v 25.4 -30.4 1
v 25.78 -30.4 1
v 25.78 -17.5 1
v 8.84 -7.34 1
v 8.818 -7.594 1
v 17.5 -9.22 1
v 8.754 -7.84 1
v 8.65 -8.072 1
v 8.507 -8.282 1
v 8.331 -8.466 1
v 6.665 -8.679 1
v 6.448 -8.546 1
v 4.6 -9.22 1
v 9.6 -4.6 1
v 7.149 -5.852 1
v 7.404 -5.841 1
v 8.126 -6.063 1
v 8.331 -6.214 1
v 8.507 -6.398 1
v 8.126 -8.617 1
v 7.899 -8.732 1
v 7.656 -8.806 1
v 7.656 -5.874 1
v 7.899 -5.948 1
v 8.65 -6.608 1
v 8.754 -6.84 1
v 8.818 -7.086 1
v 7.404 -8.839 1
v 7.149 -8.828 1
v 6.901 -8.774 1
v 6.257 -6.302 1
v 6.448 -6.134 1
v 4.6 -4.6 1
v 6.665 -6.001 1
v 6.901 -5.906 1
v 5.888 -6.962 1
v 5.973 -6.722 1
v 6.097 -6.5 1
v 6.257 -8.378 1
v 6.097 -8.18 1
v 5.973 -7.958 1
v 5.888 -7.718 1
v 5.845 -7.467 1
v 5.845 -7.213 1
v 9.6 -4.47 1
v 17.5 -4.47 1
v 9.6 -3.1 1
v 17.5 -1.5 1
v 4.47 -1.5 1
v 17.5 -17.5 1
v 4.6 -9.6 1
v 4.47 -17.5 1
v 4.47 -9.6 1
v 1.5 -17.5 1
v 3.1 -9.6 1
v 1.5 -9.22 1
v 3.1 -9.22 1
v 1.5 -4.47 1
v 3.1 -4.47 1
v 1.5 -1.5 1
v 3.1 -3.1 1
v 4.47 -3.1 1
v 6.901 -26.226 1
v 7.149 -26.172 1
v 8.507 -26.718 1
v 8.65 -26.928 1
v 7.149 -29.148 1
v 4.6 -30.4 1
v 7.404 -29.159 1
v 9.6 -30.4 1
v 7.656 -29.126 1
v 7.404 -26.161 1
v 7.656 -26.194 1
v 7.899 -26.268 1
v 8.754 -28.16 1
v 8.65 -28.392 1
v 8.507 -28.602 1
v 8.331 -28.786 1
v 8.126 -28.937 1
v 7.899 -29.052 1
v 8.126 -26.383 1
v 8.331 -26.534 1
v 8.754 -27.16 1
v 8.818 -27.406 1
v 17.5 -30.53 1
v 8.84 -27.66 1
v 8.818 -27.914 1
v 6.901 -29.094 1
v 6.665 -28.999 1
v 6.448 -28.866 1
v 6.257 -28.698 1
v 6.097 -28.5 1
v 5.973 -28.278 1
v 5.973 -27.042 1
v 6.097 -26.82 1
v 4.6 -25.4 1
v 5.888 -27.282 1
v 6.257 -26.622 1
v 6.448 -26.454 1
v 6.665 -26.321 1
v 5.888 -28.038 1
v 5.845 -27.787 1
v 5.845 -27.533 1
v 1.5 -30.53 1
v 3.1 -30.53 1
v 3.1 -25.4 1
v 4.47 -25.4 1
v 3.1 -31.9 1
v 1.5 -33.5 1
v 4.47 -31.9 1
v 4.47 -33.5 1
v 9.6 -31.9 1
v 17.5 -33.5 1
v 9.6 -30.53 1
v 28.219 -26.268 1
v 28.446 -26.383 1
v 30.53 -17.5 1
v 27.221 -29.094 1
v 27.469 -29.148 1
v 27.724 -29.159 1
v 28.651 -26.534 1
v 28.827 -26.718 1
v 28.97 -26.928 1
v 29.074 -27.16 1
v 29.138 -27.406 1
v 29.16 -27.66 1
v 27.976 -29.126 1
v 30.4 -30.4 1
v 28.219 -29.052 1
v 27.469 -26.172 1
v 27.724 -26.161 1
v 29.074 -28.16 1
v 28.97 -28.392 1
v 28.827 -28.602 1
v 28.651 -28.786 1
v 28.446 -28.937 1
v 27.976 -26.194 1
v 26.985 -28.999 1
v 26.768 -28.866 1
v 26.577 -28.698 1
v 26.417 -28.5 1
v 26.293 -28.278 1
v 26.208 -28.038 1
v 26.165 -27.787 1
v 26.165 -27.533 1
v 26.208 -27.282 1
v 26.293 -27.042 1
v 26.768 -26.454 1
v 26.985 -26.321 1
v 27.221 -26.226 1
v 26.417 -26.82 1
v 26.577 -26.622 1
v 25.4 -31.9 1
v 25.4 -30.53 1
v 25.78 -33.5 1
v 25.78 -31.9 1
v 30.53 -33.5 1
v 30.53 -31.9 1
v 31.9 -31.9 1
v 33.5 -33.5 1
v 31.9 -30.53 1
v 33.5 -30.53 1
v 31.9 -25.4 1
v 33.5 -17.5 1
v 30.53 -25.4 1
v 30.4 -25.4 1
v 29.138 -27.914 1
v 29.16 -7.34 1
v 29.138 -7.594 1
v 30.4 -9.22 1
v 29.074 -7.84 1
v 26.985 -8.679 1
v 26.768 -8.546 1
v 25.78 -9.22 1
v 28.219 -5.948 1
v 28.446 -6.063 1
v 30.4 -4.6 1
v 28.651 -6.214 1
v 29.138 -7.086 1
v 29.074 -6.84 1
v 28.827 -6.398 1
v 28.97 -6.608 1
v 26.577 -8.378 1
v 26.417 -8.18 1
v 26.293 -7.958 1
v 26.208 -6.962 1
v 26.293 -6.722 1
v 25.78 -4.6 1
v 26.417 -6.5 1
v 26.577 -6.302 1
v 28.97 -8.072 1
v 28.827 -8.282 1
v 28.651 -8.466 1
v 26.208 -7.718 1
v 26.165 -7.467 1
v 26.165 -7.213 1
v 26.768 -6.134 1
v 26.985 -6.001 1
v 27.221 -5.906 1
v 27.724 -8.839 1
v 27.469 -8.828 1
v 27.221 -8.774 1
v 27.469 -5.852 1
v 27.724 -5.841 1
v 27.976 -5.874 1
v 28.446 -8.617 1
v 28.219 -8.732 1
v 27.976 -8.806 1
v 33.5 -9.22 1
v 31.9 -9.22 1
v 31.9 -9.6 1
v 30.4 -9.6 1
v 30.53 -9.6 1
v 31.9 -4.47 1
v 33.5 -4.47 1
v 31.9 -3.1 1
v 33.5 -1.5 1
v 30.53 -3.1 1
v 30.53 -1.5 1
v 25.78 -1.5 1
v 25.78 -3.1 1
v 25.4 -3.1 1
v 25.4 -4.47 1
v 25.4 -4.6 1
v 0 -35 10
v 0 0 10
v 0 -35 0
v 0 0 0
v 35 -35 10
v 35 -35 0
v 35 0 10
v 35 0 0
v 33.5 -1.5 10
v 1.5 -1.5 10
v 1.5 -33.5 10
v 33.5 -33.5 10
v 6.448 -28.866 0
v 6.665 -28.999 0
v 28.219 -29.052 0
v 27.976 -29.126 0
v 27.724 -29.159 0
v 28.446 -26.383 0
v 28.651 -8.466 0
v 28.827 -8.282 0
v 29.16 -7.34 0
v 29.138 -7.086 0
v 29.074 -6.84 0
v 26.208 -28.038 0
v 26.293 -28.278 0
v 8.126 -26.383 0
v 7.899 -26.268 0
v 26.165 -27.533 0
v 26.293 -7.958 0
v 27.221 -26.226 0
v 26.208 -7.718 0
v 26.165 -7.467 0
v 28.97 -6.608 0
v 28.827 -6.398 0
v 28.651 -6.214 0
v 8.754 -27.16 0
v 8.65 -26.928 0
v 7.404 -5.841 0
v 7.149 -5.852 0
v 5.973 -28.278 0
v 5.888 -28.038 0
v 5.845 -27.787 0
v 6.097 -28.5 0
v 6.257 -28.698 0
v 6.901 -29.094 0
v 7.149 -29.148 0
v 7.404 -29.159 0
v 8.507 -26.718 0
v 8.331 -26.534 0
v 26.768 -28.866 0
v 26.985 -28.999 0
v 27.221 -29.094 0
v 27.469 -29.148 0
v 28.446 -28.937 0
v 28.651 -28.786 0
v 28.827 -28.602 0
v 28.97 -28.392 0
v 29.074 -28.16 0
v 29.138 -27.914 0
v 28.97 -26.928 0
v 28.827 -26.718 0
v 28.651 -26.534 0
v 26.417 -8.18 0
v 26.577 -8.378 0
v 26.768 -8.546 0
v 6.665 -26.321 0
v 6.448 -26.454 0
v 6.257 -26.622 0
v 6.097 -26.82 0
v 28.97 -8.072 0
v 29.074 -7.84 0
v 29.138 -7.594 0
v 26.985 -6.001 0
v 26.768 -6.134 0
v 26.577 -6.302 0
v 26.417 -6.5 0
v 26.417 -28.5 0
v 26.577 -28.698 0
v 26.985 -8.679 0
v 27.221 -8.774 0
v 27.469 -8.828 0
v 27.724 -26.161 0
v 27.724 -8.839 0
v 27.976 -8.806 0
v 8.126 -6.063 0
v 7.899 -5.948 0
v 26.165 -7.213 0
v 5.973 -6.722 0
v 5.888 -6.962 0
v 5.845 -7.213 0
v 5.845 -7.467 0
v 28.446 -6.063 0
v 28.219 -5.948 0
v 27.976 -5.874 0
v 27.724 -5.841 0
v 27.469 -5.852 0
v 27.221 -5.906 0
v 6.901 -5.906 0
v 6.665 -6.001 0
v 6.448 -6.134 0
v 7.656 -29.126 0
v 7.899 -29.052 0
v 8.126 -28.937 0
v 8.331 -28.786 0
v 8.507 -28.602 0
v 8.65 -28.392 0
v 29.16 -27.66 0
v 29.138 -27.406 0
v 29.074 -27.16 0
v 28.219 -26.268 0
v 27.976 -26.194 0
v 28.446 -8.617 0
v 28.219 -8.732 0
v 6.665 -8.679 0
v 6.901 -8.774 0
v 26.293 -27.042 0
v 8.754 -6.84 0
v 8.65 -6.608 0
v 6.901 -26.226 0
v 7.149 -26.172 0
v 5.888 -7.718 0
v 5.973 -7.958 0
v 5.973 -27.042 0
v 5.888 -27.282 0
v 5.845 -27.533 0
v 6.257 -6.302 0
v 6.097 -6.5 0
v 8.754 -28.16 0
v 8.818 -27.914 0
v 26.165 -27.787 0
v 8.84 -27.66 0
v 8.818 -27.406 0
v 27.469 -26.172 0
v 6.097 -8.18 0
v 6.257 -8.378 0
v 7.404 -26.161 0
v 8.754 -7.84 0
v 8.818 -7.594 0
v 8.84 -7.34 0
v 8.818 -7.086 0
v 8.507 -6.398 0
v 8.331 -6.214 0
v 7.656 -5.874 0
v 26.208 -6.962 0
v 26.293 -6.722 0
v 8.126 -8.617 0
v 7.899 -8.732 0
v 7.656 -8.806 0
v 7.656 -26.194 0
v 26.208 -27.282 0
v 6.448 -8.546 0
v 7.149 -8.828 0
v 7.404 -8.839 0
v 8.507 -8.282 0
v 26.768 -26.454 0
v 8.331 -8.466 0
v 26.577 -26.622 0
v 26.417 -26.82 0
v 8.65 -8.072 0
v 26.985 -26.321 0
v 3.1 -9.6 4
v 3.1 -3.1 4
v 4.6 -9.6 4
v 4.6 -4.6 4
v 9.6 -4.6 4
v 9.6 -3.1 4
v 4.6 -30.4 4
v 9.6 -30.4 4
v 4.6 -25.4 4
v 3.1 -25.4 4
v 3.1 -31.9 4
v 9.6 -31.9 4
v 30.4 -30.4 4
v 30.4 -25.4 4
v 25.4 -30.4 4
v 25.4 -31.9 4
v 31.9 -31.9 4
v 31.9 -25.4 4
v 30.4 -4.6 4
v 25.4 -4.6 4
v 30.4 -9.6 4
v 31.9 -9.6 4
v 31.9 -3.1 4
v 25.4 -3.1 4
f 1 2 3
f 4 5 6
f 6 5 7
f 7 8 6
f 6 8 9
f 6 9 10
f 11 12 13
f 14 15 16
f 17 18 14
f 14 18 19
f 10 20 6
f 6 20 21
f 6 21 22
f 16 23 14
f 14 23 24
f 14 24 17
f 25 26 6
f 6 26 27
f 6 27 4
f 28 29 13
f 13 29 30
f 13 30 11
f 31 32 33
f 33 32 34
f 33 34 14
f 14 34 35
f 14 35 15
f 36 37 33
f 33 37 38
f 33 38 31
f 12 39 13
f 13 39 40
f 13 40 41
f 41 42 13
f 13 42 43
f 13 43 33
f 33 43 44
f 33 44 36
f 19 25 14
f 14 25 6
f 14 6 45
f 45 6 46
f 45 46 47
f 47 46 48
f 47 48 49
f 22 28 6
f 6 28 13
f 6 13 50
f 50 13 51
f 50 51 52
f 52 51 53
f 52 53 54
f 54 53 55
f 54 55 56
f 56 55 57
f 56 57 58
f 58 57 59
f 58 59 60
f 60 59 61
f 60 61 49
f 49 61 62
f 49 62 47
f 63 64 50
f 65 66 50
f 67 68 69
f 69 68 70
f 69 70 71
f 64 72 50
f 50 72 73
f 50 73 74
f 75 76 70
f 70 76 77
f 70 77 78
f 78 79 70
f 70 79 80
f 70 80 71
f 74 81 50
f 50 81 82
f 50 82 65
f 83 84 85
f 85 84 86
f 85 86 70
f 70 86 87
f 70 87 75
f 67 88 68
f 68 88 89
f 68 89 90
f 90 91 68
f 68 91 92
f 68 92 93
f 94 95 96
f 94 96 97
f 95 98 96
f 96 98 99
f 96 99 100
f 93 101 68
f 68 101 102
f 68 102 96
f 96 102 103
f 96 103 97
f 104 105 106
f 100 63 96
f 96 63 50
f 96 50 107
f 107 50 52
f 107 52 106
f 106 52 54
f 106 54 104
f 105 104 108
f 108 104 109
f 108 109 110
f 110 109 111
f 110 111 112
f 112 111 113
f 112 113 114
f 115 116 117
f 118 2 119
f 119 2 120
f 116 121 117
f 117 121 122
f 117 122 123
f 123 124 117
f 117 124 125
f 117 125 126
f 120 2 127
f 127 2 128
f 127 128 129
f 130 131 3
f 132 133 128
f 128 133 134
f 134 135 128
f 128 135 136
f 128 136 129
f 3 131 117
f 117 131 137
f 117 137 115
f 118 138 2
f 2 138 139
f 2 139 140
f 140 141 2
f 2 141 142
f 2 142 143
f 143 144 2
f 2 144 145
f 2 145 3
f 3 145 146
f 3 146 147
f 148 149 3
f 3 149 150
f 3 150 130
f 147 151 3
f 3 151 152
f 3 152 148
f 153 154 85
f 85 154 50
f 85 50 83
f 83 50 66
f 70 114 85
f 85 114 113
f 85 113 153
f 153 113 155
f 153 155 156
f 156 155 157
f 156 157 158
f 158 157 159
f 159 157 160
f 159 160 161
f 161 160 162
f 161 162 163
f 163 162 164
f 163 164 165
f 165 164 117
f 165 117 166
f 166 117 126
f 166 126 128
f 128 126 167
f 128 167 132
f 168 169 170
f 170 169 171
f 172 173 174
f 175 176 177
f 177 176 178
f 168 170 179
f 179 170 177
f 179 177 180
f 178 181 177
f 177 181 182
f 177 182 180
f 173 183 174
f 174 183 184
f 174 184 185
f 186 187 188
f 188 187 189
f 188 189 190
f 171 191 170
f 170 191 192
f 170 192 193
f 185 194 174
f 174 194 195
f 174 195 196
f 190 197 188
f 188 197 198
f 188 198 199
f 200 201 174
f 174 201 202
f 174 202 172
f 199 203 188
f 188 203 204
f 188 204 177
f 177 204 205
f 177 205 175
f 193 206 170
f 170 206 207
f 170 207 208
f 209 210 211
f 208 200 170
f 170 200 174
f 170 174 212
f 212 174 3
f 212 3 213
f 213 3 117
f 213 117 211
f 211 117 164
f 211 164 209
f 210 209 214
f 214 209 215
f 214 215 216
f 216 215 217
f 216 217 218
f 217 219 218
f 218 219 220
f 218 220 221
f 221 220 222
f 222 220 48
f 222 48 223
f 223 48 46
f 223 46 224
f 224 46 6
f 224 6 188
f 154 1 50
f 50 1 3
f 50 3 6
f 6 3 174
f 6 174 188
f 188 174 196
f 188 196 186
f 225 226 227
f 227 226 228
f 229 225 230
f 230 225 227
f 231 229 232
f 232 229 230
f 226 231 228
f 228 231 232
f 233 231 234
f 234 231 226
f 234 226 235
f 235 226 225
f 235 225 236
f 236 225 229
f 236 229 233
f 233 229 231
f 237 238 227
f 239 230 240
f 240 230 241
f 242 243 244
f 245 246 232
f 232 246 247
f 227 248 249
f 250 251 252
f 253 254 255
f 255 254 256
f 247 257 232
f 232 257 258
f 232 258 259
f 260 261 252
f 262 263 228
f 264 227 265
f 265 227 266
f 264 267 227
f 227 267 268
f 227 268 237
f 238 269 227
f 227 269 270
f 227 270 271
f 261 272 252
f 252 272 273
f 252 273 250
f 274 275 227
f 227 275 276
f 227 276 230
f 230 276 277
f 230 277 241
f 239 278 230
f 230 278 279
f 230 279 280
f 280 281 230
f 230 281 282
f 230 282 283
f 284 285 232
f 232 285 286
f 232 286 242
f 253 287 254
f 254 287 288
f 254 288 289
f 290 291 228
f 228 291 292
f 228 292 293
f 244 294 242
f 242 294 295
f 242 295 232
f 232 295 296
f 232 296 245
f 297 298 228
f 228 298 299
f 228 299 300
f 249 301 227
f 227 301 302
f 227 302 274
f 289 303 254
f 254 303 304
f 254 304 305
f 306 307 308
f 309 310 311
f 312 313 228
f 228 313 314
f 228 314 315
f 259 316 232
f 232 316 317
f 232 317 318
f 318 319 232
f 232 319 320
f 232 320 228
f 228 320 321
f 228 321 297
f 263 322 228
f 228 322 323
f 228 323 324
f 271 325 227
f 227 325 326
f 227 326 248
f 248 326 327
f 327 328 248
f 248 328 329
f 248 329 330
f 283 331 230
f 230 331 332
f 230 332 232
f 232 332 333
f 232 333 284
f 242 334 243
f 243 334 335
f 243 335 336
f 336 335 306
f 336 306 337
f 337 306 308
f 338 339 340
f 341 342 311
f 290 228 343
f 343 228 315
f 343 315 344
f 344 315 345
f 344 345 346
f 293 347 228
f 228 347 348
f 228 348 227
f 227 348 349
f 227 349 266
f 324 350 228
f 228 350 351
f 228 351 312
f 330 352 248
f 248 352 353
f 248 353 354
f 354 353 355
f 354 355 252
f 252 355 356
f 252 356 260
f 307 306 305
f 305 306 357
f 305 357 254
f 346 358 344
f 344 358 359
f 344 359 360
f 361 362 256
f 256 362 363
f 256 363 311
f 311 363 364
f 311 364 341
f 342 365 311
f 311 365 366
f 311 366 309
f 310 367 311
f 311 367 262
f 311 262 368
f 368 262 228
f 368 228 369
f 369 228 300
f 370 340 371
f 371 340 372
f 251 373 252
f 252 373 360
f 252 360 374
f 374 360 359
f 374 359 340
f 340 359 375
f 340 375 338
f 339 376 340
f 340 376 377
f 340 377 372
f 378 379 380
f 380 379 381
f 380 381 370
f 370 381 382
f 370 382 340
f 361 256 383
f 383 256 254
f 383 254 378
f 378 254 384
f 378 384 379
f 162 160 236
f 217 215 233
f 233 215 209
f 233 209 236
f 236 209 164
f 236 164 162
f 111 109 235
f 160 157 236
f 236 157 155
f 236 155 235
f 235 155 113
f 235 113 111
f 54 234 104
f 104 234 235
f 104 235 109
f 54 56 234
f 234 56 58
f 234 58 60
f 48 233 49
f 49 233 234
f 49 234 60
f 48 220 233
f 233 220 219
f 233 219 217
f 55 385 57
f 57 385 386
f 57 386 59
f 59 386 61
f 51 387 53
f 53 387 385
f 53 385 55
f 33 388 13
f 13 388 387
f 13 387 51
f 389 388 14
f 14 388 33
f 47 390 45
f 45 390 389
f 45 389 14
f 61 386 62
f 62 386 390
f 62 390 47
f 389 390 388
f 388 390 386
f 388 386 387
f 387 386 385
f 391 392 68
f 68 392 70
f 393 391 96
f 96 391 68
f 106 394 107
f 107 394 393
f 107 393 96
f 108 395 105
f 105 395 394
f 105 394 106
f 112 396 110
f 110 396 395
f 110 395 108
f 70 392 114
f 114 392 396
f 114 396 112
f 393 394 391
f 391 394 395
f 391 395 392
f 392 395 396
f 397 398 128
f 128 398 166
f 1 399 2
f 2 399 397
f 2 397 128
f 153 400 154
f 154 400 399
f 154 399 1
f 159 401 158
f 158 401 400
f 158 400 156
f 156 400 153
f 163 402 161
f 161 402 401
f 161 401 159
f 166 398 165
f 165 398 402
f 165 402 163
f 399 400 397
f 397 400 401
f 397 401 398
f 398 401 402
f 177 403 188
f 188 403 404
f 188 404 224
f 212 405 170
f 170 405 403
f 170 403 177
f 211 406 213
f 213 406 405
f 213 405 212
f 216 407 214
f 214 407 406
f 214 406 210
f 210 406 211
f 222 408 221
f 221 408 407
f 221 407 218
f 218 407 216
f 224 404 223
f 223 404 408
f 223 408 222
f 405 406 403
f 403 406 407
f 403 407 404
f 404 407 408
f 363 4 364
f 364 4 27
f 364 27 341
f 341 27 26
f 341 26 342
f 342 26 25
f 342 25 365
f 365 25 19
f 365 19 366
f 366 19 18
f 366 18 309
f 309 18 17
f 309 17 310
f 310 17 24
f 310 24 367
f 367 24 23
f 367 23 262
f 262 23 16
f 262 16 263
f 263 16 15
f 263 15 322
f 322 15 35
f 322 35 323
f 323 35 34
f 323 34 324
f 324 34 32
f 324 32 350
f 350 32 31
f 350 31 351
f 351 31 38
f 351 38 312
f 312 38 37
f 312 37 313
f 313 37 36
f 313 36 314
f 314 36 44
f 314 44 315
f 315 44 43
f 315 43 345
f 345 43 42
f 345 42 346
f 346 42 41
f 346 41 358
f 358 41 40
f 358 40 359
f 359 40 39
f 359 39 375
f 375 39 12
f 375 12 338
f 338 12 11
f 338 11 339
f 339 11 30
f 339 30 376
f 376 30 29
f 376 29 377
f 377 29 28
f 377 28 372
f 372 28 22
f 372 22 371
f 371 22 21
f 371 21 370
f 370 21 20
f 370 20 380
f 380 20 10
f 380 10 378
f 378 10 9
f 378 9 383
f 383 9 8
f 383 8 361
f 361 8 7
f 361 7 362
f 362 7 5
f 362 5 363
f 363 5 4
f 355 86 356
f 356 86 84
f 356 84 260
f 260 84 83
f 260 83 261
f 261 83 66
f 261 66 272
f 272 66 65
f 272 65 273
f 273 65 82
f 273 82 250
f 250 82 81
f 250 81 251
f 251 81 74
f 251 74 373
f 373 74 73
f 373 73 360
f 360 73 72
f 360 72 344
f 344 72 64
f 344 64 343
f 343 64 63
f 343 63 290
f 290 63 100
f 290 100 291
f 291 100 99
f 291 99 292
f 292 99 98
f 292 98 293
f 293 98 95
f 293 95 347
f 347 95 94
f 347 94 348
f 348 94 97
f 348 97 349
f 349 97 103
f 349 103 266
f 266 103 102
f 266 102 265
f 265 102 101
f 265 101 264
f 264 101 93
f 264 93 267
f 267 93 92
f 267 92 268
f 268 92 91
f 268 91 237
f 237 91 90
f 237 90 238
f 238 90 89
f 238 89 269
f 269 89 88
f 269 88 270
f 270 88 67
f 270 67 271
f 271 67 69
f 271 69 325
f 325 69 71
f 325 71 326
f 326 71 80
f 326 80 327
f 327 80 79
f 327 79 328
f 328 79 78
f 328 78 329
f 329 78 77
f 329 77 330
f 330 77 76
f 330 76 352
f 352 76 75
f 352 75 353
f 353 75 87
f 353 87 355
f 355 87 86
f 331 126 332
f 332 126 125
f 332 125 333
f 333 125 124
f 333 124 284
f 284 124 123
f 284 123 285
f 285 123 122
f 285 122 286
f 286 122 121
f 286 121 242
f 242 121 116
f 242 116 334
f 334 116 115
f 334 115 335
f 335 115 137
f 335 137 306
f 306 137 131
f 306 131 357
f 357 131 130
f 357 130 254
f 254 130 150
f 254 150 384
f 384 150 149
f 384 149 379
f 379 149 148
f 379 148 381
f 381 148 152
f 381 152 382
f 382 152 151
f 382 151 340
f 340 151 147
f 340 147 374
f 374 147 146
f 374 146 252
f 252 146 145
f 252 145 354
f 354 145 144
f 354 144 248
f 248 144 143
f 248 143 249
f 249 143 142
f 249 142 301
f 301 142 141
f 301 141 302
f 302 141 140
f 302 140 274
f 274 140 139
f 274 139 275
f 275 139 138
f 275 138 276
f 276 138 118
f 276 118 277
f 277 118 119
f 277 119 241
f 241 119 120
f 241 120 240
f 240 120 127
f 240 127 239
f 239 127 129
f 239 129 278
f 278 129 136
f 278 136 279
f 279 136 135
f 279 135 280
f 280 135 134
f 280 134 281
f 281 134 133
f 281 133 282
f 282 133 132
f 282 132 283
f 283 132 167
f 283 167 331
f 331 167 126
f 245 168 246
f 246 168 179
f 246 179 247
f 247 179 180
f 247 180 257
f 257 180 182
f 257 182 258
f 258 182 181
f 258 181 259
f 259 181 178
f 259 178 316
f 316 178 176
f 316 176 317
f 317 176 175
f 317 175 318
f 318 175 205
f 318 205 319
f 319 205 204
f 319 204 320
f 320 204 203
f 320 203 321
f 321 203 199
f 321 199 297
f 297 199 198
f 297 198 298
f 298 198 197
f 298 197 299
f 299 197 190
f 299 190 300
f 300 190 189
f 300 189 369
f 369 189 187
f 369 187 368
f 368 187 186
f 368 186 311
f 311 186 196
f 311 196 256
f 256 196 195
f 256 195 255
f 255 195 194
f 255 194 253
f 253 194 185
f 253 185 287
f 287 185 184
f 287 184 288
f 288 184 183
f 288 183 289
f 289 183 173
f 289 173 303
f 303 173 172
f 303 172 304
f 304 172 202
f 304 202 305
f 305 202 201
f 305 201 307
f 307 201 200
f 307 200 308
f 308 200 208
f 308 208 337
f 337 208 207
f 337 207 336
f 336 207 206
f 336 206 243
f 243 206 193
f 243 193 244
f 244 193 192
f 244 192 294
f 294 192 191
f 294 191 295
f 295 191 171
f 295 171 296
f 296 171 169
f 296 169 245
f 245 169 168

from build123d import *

# Parameters (mm, degrees)
SKETCH1_W           = 35
SKETCH1_H           = 35
BOSS_EXTRUDE1_DEPTH = 10
SKETCH2_W           = 32
SKETCH2_H           = 32
CUT_EXTRUDE1_DEPTH  = 9
BOSS_EXTRUDE2_DEPTH = 3
SKETCH5_R           = 1.5
CUT_EXTRUDE2_DEPTH  = 51.309044912


with BuildPart() as part:
    # Sketch1 → Boss-Extrude1 (new body)
    with BuildSketch(Plane.XY):
        with Locations((17.5, -17.5)):
            Rectangle(SKETCH1_W, SKETCH1_H)
    extrude(amount=BOSS_EXTRUDE1_DEPTH)

    # Sketch2 → Cut-Extrude1 (cut)
    with BuildSketch(Plane.XY.offset(10)):
        with Locations((17.5, -17.5)):
            Rectangle(SKETCH2_W, SKETCH2_H)
    extrude(amount=-CUT_EXTRUDE1_DEPTH, mode=Mode.SUBTRACT)

    # Sketch3 → Boss-Extrude2 (add)
    with BuildSketch(Plane.XY.offset(1)):
        Polygon((3.1, -3.1), (3.1, -9.6), (4.6, -9.6), (4.6, -4.6), (9.6, -4.6), (9.6, -3.1), align=None)
        Polygon((4.6, -30.4), (9.6, -30.4), (9.6, -31.9), (3.1, -31.9), (3.1, -25.4), (4.6, -25.4), align=None)
        Polygon((30.4, -30.4), (30.4, -25.4), (31.9, -25.4), (31.9, -31.9), (25.4, -31.9), (25.4, -30.4), align=None)
        Polygon((30.4, -4.6), (25.4, -4.6), (25.4, -3.1), (31.9, -3.1), (31.9, -9.6), (30.4, -9.6), align=None)
    extrude(amount=BOSS_EXTRUDE2_DEPTH)

    # Sketch5 → Cut-Extrude2 (cut, through all)
    with BuildSketch(Plane.XY.offset(1)):
        with Locations((7.34, -7.34)):
            Circle(SKETCH5_R)
        with Locations((7.34, -27.66)):
            Circle(SKETCH5_R)
        with Locations((27.66, -27.66)):
            Circle(SKETCH5_R)
        with Locations((27.66, -7.34)):
            Circle(SKETCH5_R)
    extrude(amount=-CUT_EXTRUDE2_DEPTH, mode=Mode.SUBTRACT)


solid = part.part
